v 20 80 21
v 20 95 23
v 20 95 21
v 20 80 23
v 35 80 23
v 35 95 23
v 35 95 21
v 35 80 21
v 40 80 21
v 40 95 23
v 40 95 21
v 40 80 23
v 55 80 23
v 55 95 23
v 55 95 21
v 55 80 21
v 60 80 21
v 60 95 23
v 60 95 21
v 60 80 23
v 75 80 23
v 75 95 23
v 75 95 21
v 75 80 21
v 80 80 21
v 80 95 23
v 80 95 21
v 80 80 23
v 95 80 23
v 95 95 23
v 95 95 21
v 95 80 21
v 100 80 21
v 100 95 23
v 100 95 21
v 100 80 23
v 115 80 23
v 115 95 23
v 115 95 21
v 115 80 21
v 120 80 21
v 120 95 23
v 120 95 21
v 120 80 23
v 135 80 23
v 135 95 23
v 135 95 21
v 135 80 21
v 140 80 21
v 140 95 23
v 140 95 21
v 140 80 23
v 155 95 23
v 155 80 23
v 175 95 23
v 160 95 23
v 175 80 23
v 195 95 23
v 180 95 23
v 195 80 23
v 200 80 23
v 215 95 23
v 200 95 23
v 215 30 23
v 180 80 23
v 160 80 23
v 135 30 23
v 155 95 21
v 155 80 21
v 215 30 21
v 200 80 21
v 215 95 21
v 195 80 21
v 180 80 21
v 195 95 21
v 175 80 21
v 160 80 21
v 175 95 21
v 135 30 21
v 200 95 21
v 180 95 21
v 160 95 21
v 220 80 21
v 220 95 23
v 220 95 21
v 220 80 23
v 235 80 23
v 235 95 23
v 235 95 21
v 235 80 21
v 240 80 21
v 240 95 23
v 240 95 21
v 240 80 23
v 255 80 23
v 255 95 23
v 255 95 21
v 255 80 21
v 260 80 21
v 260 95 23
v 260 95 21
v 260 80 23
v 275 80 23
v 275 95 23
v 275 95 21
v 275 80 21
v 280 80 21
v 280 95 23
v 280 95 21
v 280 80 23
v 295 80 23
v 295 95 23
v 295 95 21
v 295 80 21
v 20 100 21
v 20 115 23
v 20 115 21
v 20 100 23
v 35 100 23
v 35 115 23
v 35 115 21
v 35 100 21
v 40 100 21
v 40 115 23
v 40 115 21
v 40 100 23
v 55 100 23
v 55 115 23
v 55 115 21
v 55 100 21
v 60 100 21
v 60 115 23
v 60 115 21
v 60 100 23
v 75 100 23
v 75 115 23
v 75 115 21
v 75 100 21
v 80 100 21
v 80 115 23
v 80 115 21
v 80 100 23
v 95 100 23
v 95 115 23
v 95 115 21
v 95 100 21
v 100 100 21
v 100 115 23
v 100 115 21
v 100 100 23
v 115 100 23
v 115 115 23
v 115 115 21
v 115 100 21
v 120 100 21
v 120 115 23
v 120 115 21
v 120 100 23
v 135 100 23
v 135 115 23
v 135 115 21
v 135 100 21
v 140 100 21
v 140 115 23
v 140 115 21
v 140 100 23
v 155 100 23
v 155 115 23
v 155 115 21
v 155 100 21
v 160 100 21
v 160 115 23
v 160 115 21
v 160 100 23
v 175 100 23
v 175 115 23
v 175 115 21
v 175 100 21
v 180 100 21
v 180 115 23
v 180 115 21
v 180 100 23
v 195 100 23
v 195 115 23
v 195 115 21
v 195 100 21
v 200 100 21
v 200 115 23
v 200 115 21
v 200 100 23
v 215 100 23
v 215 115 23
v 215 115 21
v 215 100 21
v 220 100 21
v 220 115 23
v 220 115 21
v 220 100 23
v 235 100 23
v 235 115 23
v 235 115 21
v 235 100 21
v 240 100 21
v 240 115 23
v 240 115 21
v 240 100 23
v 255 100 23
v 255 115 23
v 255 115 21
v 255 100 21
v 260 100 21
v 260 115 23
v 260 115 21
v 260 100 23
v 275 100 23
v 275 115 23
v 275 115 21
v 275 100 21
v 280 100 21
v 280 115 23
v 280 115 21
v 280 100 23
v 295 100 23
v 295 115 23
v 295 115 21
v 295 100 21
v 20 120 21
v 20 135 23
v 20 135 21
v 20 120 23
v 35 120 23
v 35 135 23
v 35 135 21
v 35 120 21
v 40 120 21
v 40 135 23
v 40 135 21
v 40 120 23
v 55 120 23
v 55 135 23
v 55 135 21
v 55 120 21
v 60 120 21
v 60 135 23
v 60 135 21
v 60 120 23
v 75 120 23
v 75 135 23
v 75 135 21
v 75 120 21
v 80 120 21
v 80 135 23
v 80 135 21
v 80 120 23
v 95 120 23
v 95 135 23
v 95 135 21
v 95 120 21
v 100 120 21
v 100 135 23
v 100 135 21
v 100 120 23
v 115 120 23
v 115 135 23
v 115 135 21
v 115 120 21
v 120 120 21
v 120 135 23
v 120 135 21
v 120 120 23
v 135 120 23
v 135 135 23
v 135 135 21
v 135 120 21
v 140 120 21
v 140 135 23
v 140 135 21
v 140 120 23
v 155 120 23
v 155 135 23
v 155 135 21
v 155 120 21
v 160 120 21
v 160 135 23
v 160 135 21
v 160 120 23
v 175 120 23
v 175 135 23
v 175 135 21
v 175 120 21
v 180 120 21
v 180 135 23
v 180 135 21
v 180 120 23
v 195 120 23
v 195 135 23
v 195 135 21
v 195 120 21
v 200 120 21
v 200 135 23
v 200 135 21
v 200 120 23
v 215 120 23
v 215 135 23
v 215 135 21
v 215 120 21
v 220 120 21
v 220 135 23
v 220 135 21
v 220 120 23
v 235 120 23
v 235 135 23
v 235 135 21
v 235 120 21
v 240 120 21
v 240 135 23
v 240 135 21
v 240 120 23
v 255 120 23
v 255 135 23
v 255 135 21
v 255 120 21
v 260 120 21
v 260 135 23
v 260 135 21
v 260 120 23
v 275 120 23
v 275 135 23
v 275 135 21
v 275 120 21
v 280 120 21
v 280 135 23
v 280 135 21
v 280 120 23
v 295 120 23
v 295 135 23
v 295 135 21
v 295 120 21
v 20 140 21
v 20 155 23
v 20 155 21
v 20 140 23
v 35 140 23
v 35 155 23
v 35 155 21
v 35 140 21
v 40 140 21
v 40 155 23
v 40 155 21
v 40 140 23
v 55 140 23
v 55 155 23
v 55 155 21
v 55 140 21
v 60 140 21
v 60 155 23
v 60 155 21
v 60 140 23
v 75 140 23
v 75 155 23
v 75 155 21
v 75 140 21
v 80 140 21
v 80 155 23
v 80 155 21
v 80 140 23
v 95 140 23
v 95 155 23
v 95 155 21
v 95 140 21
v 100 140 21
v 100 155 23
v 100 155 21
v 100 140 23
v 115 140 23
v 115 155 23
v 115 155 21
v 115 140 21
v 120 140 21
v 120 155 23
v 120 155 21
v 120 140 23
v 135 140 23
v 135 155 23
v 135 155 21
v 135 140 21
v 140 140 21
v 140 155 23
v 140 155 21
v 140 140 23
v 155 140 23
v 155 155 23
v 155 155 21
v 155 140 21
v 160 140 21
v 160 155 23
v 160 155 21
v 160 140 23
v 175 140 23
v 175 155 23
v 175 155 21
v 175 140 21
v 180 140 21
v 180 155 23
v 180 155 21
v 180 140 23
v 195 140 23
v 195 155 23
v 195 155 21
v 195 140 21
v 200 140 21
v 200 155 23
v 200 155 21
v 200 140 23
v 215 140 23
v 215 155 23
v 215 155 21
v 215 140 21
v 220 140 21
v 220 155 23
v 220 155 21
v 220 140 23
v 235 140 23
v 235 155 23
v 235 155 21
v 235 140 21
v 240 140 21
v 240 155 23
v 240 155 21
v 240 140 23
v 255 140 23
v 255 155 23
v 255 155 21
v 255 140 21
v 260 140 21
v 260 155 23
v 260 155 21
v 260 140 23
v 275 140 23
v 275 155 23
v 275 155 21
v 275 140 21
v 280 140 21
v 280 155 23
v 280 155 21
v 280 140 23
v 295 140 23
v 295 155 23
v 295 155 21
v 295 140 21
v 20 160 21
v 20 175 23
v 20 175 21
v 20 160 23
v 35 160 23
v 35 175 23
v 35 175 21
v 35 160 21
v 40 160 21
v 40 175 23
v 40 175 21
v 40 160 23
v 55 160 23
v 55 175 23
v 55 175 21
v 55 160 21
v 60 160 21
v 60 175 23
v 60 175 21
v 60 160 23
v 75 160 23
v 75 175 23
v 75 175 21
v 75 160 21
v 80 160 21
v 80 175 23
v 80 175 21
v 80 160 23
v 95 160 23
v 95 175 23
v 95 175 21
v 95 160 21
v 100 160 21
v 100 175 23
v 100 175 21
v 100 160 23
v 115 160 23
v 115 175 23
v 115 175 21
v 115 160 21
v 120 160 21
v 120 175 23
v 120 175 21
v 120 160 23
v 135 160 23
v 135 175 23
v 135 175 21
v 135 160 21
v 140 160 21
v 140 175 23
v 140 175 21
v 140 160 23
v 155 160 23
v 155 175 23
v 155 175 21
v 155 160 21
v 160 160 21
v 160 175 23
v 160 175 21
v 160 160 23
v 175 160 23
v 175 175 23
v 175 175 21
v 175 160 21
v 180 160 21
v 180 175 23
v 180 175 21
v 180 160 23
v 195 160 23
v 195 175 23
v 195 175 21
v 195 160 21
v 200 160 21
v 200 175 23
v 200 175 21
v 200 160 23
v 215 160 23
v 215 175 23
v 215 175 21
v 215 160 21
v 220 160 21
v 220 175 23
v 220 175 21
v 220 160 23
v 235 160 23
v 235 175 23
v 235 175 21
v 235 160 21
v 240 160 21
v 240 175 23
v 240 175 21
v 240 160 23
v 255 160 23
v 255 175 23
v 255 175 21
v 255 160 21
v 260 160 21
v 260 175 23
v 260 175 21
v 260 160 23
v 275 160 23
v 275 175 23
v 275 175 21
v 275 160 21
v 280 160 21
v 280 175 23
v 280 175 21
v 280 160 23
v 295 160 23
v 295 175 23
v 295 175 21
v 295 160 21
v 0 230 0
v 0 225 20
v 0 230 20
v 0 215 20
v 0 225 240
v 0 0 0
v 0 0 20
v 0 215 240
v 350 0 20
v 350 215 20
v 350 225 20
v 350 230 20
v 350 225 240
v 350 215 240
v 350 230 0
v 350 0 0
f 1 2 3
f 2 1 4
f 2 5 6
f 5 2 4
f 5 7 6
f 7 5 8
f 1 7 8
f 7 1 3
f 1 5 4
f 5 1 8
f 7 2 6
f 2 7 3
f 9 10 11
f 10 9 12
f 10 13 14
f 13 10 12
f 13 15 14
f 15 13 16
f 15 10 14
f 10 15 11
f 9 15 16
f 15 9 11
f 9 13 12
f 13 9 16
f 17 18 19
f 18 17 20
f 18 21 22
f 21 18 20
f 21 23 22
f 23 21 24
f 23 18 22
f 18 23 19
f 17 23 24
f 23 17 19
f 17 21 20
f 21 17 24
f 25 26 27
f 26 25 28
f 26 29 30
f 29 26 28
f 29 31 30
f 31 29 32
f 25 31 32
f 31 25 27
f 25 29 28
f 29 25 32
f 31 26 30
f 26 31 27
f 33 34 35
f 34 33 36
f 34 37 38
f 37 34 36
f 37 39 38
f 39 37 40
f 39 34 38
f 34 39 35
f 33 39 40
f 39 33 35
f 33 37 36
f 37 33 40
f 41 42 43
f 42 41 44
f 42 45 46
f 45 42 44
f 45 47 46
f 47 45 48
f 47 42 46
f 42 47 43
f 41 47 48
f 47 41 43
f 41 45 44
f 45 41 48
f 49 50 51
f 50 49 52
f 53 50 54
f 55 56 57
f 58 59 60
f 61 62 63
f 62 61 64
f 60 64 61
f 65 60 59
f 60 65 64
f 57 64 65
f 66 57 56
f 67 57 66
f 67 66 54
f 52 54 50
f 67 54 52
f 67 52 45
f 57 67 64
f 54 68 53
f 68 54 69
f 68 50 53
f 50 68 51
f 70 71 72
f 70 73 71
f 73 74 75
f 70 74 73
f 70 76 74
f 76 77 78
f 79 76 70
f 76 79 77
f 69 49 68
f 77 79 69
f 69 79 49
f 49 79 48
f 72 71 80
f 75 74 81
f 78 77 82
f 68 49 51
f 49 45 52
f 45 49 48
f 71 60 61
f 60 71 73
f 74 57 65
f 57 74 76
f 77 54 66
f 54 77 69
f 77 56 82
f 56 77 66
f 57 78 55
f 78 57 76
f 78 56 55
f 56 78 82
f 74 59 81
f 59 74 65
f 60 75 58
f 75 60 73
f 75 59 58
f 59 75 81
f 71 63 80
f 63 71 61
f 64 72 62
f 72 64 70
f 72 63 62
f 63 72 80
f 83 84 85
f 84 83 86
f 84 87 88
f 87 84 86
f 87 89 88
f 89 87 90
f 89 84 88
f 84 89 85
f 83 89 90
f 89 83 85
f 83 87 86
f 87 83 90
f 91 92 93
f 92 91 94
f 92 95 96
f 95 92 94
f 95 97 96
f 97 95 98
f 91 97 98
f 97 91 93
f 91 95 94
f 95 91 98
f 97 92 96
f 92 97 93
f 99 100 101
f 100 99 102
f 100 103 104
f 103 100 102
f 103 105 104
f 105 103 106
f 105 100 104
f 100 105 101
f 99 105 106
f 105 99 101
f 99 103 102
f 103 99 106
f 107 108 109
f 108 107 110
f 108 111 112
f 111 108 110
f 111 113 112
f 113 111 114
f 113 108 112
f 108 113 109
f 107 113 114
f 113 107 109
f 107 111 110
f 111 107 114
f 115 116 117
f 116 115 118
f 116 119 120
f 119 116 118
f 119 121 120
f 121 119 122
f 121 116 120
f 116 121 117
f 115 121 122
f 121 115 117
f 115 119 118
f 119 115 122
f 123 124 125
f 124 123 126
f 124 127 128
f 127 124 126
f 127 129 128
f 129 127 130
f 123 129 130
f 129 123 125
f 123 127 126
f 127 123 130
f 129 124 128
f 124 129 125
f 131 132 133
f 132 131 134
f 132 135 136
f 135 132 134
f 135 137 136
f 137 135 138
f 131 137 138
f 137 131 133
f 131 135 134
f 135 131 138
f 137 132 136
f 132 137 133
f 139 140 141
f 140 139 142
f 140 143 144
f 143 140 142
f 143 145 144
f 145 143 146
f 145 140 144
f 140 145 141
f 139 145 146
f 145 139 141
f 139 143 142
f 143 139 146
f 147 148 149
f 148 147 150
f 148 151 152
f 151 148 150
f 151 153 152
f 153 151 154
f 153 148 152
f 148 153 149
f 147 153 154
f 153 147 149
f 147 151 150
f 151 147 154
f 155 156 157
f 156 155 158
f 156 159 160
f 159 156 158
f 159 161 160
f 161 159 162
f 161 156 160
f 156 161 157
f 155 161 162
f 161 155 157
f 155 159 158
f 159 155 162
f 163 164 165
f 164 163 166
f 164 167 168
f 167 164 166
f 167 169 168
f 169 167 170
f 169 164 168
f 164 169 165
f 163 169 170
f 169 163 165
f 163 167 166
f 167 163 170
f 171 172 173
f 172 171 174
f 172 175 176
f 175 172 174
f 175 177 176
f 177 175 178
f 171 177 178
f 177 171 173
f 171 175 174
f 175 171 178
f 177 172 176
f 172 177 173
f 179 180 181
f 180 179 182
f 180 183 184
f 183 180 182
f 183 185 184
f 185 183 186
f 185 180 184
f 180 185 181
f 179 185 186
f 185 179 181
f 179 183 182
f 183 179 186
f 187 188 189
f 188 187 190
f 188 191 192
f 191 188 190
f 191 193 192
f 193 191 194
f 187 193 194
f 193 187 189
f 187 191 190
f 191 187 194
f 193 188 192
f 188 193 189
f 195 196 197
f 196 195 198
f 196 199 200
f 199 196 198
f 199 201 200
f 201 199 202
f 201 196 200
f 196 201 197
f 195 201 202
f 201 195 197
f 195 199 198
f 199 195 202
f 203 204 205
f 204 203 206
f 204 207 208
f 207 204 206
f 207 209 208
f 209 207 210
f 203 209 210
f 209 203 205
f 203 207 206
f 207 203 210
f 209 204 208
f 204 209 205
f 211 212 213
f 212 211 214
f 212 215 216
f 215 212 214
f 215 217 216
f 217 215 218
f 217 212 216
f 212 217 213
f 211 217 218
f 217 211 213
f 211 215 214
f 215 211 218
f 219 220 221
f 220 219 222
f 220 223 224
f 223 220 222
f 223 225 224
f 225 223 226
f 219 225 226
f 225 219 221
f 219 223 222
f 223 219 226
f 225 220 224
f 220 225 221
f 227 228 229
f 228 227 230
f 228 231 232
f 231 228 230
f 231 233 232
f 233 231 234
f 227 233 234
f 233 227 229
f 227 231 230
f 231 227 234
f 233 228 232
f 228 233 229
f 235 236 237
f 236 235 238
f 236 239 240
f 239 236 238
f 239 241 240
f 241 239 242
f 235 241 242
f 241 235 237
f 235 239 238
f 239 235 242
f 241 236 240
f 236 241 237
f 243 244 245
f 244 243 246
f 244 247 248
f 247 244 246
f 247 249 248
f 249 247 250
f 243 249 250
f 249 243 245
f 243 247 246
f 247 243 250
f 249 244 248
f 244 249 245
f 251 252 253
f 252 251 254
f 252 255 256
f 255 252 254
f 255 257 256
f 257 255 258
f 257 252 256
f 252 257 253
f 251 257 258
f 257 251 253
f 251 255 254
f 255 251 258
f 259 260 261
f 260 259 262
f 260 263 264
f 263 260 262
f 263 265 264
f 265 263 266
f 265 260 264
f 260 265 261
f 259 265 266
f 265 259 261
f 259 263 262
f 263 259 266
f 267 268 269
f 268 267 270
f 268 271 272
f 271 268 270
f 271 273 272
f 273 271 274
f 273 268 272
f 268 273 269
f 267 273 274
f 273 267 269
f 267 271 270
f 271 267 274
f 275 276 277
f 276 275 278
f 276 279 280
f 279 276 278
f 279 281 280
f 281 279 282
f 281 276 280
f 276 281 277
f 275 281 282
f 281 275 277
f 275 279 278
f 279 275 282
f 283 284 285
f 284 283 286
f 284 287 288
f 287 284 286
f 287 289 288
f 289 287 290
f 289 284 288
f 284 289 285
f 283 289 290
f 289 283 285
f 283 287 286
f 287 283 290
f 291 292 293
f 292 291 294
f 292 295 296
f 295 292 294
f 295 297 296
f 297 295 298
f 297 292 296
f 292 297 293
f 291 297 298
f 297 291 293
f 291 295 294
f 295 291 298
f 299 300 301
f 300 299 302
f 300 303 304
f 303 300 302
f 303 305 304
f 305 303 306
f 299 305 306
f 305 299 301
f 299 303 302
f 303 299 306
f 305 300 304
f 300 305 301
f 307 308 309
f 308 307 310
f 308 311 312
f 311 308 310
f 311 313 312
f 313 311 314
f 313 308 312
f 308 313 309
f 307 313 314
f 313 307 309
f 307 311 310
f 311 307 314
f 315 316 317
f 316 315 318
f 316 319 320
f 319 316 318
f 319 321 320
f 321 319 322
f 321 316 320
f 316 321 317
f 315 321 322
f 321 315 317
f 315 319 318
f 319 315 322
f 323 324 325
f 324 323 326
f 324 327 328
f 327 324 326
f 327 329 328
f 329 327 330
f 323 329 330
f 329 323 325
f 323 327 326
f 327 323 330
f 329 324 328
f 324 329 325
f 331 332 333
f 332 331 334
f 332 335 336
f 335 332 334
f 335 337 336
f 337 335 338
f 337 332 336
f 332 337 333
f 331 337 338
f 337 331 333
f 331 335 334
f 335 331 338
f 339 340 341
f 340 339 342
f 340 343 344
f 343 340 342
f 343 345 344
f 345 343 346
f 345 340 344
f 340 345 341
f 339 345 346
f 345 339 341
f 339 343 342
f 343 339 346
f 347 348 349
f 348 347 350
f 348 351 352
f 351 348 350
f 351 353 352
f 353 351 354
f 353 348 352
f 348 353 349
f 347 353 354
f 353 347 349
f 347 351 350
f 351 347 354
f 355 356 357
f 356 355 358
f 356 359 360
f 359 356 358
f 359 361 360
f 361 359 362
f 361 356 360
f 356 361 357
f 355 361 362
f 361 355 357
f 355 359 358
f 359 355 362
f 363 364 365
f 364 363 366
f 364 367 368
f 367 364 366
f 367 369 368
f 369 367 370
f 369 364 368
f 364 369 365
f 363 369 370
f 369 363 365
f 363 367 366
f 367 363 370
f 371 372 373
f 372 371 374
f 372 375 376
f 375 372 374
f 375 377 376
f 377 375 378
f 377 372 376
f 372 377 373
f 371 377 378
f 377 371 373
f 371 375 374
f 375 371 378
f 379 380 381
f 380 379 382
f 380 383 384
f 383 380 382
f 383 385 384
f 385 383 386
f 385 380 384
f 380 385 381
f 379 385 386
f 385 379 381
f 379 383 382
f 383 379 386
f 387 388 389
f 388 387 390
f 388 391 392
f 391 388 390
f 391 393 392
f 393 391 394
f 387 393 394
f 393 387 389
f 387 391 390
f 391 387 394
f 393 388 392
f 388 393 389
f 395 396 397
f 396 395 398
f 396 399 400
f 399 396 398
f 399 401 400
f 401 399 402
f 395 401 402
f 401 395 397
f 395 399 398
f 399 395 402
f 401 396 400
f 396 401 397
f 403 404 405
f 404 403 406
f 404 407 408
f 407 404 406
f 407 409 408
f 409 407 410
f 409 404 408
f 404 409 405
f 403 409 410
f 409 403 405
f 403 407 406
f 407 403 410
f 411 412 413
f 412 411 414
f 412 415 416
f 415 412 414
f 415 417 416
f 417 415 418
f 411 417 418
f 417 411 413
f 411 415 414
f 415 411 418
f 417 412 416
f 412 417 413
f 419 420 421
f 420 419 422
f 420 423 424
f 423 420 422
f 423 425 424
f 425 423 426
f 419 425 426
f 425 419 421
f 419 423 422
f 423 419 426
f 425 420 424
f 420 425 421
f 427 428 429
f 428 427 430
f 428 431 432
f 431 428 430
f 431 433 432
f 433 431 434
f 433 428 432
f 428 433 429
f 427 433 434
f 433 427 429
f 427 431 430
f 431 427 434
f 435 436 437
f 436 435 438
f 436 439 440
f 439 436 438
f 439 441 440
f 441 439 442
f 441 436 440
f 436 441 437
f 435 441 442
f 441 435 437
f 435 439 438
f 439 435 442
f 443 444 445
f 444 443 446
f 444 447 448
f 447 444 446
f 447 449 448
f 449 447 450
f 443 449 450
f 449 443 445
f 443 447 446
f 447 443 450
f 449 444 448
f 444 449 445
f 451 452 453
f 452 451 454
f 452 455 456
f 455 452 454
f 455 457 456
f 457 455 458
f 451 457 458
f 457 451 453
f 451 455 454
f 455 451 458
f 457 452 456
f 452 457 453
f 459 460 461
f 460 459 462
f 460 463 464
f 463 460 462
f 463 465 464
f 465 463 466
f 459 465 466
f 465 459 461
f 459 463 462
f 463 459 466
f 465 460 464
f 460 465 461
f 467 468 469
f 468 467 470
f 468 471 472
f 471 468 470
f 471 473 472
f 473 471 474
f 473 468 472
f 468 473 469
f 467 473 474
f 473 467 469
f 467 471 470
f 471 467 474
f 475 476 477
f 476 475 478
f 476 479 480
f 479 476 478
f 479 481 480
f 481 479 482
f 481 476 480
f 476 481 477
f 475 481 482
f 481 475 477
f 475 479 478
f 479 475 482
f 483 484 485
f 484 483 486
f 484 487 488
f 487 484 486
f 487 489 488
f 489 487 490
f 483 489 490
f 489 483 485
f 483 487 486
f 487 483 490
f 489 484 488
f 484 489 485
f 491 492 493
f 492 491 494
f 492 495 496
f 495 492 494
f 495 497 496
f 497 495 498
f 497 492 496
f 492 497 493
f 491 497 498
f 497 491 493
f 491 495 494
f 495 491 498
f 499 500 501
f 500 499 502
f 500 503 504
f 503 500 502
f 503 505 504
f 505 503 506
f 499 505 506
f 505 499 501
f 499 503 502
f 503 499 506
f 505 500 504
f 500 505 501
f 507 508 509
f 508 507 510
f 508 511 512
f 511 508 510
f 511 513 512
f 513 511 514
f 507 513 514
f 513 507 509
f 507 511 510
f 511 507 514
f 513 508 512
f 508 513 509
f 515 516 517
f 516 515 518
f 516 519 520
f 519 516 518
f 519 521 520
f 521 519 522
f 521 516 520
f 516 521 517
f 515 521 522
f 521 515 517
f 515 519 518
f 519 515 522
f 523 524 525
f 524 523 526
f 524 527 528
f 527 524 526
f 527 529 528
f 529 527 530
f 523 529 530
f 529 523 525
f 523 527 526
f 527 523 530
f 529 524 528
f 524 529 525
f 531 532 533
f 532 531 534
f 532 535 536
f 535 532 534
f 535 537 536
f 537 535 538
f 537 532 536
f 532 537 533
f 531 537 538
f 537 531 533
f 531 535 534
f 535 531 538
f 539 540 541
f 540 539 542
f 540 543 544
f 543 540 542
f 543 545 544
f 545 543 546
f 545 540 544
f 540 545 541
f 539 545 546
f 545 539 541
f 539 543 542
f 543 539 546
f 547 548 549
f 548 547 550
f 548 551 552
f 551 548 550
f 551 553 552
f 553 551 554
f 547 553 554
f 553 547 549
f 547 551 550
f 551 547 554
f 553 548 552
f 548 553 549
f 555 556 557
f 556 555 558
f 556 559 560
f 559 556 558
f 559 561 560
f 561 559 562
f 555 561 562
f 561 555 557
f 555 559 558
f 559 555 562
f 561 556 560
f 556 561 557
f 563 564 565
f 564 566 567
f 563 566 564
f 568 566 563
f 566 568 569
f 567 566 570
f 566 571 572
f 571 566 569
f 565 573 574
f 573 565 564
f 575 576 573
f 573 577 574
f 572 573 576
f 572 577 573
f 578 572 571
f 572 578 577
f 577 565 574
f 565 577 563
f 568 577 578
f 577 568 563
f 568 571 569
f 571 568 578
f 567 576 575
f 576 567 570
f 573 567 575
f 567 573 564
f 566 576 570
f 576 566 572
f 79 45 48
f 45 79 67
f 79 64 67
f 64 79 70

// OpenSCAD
// Maße in mm
laptop_width = 350;
laptop_depth = 230;
base_thickness = 20;
screen_thickness = 10;
screen_height = 220;
hinge_gap = 5;

// Farben (optional, nur für Vorschau in OpenSCAD)
base_color = [0.2, 0.2, 0.2];
key_color = [0.8, 0.8, 0.8];
touchpad_color = [0.5, 0.5, 0.5];

// Basis (Tastaturteil)
color(base_color)
translate([0, 0, 0])
    cube([laptop_width, laptop_depth, base_thickness]);

// Bildschirm (stehend hinten an der Basis)
color(base_color)
translate([0, laptop_depth - screen_thickness - hinge_gap, base_thickness])
    cube([laptop_width, screen_thickness, screen_height]);

// Tastatur (angedeutet als kleine Tastenfläche)
key_rows = 5;
key_cols = 14;
key_spacing_x = 20;
key_spacing_y = 20;
key_size = 15;

for (row = [0:key_rows - 1])
    for (col = [0:key_cols - 1]) {
        x = 20 + col * key_spacing_x;
        y = 80 + row * key_spacing_y; // weiter oben auf der Basis
        color(key_color)
        translate([x, y, base_thickness + 1])
            cube([key_size, key_size, 2]);
    }

// Touchpad (unterhalb der Tastatur, mittig)
touchpad_width = 80;
touchpad_depth = 50;
touchpad_x = (laptop_width - touchpad_width) / 2;
touchpad_y = 30; // weiter vorne

color(touchpad_color)
translate([touchpad_x, touchpad_y, base_thickness + 1])
    cube([touchpad_width, touchpad_depth, 2]);
